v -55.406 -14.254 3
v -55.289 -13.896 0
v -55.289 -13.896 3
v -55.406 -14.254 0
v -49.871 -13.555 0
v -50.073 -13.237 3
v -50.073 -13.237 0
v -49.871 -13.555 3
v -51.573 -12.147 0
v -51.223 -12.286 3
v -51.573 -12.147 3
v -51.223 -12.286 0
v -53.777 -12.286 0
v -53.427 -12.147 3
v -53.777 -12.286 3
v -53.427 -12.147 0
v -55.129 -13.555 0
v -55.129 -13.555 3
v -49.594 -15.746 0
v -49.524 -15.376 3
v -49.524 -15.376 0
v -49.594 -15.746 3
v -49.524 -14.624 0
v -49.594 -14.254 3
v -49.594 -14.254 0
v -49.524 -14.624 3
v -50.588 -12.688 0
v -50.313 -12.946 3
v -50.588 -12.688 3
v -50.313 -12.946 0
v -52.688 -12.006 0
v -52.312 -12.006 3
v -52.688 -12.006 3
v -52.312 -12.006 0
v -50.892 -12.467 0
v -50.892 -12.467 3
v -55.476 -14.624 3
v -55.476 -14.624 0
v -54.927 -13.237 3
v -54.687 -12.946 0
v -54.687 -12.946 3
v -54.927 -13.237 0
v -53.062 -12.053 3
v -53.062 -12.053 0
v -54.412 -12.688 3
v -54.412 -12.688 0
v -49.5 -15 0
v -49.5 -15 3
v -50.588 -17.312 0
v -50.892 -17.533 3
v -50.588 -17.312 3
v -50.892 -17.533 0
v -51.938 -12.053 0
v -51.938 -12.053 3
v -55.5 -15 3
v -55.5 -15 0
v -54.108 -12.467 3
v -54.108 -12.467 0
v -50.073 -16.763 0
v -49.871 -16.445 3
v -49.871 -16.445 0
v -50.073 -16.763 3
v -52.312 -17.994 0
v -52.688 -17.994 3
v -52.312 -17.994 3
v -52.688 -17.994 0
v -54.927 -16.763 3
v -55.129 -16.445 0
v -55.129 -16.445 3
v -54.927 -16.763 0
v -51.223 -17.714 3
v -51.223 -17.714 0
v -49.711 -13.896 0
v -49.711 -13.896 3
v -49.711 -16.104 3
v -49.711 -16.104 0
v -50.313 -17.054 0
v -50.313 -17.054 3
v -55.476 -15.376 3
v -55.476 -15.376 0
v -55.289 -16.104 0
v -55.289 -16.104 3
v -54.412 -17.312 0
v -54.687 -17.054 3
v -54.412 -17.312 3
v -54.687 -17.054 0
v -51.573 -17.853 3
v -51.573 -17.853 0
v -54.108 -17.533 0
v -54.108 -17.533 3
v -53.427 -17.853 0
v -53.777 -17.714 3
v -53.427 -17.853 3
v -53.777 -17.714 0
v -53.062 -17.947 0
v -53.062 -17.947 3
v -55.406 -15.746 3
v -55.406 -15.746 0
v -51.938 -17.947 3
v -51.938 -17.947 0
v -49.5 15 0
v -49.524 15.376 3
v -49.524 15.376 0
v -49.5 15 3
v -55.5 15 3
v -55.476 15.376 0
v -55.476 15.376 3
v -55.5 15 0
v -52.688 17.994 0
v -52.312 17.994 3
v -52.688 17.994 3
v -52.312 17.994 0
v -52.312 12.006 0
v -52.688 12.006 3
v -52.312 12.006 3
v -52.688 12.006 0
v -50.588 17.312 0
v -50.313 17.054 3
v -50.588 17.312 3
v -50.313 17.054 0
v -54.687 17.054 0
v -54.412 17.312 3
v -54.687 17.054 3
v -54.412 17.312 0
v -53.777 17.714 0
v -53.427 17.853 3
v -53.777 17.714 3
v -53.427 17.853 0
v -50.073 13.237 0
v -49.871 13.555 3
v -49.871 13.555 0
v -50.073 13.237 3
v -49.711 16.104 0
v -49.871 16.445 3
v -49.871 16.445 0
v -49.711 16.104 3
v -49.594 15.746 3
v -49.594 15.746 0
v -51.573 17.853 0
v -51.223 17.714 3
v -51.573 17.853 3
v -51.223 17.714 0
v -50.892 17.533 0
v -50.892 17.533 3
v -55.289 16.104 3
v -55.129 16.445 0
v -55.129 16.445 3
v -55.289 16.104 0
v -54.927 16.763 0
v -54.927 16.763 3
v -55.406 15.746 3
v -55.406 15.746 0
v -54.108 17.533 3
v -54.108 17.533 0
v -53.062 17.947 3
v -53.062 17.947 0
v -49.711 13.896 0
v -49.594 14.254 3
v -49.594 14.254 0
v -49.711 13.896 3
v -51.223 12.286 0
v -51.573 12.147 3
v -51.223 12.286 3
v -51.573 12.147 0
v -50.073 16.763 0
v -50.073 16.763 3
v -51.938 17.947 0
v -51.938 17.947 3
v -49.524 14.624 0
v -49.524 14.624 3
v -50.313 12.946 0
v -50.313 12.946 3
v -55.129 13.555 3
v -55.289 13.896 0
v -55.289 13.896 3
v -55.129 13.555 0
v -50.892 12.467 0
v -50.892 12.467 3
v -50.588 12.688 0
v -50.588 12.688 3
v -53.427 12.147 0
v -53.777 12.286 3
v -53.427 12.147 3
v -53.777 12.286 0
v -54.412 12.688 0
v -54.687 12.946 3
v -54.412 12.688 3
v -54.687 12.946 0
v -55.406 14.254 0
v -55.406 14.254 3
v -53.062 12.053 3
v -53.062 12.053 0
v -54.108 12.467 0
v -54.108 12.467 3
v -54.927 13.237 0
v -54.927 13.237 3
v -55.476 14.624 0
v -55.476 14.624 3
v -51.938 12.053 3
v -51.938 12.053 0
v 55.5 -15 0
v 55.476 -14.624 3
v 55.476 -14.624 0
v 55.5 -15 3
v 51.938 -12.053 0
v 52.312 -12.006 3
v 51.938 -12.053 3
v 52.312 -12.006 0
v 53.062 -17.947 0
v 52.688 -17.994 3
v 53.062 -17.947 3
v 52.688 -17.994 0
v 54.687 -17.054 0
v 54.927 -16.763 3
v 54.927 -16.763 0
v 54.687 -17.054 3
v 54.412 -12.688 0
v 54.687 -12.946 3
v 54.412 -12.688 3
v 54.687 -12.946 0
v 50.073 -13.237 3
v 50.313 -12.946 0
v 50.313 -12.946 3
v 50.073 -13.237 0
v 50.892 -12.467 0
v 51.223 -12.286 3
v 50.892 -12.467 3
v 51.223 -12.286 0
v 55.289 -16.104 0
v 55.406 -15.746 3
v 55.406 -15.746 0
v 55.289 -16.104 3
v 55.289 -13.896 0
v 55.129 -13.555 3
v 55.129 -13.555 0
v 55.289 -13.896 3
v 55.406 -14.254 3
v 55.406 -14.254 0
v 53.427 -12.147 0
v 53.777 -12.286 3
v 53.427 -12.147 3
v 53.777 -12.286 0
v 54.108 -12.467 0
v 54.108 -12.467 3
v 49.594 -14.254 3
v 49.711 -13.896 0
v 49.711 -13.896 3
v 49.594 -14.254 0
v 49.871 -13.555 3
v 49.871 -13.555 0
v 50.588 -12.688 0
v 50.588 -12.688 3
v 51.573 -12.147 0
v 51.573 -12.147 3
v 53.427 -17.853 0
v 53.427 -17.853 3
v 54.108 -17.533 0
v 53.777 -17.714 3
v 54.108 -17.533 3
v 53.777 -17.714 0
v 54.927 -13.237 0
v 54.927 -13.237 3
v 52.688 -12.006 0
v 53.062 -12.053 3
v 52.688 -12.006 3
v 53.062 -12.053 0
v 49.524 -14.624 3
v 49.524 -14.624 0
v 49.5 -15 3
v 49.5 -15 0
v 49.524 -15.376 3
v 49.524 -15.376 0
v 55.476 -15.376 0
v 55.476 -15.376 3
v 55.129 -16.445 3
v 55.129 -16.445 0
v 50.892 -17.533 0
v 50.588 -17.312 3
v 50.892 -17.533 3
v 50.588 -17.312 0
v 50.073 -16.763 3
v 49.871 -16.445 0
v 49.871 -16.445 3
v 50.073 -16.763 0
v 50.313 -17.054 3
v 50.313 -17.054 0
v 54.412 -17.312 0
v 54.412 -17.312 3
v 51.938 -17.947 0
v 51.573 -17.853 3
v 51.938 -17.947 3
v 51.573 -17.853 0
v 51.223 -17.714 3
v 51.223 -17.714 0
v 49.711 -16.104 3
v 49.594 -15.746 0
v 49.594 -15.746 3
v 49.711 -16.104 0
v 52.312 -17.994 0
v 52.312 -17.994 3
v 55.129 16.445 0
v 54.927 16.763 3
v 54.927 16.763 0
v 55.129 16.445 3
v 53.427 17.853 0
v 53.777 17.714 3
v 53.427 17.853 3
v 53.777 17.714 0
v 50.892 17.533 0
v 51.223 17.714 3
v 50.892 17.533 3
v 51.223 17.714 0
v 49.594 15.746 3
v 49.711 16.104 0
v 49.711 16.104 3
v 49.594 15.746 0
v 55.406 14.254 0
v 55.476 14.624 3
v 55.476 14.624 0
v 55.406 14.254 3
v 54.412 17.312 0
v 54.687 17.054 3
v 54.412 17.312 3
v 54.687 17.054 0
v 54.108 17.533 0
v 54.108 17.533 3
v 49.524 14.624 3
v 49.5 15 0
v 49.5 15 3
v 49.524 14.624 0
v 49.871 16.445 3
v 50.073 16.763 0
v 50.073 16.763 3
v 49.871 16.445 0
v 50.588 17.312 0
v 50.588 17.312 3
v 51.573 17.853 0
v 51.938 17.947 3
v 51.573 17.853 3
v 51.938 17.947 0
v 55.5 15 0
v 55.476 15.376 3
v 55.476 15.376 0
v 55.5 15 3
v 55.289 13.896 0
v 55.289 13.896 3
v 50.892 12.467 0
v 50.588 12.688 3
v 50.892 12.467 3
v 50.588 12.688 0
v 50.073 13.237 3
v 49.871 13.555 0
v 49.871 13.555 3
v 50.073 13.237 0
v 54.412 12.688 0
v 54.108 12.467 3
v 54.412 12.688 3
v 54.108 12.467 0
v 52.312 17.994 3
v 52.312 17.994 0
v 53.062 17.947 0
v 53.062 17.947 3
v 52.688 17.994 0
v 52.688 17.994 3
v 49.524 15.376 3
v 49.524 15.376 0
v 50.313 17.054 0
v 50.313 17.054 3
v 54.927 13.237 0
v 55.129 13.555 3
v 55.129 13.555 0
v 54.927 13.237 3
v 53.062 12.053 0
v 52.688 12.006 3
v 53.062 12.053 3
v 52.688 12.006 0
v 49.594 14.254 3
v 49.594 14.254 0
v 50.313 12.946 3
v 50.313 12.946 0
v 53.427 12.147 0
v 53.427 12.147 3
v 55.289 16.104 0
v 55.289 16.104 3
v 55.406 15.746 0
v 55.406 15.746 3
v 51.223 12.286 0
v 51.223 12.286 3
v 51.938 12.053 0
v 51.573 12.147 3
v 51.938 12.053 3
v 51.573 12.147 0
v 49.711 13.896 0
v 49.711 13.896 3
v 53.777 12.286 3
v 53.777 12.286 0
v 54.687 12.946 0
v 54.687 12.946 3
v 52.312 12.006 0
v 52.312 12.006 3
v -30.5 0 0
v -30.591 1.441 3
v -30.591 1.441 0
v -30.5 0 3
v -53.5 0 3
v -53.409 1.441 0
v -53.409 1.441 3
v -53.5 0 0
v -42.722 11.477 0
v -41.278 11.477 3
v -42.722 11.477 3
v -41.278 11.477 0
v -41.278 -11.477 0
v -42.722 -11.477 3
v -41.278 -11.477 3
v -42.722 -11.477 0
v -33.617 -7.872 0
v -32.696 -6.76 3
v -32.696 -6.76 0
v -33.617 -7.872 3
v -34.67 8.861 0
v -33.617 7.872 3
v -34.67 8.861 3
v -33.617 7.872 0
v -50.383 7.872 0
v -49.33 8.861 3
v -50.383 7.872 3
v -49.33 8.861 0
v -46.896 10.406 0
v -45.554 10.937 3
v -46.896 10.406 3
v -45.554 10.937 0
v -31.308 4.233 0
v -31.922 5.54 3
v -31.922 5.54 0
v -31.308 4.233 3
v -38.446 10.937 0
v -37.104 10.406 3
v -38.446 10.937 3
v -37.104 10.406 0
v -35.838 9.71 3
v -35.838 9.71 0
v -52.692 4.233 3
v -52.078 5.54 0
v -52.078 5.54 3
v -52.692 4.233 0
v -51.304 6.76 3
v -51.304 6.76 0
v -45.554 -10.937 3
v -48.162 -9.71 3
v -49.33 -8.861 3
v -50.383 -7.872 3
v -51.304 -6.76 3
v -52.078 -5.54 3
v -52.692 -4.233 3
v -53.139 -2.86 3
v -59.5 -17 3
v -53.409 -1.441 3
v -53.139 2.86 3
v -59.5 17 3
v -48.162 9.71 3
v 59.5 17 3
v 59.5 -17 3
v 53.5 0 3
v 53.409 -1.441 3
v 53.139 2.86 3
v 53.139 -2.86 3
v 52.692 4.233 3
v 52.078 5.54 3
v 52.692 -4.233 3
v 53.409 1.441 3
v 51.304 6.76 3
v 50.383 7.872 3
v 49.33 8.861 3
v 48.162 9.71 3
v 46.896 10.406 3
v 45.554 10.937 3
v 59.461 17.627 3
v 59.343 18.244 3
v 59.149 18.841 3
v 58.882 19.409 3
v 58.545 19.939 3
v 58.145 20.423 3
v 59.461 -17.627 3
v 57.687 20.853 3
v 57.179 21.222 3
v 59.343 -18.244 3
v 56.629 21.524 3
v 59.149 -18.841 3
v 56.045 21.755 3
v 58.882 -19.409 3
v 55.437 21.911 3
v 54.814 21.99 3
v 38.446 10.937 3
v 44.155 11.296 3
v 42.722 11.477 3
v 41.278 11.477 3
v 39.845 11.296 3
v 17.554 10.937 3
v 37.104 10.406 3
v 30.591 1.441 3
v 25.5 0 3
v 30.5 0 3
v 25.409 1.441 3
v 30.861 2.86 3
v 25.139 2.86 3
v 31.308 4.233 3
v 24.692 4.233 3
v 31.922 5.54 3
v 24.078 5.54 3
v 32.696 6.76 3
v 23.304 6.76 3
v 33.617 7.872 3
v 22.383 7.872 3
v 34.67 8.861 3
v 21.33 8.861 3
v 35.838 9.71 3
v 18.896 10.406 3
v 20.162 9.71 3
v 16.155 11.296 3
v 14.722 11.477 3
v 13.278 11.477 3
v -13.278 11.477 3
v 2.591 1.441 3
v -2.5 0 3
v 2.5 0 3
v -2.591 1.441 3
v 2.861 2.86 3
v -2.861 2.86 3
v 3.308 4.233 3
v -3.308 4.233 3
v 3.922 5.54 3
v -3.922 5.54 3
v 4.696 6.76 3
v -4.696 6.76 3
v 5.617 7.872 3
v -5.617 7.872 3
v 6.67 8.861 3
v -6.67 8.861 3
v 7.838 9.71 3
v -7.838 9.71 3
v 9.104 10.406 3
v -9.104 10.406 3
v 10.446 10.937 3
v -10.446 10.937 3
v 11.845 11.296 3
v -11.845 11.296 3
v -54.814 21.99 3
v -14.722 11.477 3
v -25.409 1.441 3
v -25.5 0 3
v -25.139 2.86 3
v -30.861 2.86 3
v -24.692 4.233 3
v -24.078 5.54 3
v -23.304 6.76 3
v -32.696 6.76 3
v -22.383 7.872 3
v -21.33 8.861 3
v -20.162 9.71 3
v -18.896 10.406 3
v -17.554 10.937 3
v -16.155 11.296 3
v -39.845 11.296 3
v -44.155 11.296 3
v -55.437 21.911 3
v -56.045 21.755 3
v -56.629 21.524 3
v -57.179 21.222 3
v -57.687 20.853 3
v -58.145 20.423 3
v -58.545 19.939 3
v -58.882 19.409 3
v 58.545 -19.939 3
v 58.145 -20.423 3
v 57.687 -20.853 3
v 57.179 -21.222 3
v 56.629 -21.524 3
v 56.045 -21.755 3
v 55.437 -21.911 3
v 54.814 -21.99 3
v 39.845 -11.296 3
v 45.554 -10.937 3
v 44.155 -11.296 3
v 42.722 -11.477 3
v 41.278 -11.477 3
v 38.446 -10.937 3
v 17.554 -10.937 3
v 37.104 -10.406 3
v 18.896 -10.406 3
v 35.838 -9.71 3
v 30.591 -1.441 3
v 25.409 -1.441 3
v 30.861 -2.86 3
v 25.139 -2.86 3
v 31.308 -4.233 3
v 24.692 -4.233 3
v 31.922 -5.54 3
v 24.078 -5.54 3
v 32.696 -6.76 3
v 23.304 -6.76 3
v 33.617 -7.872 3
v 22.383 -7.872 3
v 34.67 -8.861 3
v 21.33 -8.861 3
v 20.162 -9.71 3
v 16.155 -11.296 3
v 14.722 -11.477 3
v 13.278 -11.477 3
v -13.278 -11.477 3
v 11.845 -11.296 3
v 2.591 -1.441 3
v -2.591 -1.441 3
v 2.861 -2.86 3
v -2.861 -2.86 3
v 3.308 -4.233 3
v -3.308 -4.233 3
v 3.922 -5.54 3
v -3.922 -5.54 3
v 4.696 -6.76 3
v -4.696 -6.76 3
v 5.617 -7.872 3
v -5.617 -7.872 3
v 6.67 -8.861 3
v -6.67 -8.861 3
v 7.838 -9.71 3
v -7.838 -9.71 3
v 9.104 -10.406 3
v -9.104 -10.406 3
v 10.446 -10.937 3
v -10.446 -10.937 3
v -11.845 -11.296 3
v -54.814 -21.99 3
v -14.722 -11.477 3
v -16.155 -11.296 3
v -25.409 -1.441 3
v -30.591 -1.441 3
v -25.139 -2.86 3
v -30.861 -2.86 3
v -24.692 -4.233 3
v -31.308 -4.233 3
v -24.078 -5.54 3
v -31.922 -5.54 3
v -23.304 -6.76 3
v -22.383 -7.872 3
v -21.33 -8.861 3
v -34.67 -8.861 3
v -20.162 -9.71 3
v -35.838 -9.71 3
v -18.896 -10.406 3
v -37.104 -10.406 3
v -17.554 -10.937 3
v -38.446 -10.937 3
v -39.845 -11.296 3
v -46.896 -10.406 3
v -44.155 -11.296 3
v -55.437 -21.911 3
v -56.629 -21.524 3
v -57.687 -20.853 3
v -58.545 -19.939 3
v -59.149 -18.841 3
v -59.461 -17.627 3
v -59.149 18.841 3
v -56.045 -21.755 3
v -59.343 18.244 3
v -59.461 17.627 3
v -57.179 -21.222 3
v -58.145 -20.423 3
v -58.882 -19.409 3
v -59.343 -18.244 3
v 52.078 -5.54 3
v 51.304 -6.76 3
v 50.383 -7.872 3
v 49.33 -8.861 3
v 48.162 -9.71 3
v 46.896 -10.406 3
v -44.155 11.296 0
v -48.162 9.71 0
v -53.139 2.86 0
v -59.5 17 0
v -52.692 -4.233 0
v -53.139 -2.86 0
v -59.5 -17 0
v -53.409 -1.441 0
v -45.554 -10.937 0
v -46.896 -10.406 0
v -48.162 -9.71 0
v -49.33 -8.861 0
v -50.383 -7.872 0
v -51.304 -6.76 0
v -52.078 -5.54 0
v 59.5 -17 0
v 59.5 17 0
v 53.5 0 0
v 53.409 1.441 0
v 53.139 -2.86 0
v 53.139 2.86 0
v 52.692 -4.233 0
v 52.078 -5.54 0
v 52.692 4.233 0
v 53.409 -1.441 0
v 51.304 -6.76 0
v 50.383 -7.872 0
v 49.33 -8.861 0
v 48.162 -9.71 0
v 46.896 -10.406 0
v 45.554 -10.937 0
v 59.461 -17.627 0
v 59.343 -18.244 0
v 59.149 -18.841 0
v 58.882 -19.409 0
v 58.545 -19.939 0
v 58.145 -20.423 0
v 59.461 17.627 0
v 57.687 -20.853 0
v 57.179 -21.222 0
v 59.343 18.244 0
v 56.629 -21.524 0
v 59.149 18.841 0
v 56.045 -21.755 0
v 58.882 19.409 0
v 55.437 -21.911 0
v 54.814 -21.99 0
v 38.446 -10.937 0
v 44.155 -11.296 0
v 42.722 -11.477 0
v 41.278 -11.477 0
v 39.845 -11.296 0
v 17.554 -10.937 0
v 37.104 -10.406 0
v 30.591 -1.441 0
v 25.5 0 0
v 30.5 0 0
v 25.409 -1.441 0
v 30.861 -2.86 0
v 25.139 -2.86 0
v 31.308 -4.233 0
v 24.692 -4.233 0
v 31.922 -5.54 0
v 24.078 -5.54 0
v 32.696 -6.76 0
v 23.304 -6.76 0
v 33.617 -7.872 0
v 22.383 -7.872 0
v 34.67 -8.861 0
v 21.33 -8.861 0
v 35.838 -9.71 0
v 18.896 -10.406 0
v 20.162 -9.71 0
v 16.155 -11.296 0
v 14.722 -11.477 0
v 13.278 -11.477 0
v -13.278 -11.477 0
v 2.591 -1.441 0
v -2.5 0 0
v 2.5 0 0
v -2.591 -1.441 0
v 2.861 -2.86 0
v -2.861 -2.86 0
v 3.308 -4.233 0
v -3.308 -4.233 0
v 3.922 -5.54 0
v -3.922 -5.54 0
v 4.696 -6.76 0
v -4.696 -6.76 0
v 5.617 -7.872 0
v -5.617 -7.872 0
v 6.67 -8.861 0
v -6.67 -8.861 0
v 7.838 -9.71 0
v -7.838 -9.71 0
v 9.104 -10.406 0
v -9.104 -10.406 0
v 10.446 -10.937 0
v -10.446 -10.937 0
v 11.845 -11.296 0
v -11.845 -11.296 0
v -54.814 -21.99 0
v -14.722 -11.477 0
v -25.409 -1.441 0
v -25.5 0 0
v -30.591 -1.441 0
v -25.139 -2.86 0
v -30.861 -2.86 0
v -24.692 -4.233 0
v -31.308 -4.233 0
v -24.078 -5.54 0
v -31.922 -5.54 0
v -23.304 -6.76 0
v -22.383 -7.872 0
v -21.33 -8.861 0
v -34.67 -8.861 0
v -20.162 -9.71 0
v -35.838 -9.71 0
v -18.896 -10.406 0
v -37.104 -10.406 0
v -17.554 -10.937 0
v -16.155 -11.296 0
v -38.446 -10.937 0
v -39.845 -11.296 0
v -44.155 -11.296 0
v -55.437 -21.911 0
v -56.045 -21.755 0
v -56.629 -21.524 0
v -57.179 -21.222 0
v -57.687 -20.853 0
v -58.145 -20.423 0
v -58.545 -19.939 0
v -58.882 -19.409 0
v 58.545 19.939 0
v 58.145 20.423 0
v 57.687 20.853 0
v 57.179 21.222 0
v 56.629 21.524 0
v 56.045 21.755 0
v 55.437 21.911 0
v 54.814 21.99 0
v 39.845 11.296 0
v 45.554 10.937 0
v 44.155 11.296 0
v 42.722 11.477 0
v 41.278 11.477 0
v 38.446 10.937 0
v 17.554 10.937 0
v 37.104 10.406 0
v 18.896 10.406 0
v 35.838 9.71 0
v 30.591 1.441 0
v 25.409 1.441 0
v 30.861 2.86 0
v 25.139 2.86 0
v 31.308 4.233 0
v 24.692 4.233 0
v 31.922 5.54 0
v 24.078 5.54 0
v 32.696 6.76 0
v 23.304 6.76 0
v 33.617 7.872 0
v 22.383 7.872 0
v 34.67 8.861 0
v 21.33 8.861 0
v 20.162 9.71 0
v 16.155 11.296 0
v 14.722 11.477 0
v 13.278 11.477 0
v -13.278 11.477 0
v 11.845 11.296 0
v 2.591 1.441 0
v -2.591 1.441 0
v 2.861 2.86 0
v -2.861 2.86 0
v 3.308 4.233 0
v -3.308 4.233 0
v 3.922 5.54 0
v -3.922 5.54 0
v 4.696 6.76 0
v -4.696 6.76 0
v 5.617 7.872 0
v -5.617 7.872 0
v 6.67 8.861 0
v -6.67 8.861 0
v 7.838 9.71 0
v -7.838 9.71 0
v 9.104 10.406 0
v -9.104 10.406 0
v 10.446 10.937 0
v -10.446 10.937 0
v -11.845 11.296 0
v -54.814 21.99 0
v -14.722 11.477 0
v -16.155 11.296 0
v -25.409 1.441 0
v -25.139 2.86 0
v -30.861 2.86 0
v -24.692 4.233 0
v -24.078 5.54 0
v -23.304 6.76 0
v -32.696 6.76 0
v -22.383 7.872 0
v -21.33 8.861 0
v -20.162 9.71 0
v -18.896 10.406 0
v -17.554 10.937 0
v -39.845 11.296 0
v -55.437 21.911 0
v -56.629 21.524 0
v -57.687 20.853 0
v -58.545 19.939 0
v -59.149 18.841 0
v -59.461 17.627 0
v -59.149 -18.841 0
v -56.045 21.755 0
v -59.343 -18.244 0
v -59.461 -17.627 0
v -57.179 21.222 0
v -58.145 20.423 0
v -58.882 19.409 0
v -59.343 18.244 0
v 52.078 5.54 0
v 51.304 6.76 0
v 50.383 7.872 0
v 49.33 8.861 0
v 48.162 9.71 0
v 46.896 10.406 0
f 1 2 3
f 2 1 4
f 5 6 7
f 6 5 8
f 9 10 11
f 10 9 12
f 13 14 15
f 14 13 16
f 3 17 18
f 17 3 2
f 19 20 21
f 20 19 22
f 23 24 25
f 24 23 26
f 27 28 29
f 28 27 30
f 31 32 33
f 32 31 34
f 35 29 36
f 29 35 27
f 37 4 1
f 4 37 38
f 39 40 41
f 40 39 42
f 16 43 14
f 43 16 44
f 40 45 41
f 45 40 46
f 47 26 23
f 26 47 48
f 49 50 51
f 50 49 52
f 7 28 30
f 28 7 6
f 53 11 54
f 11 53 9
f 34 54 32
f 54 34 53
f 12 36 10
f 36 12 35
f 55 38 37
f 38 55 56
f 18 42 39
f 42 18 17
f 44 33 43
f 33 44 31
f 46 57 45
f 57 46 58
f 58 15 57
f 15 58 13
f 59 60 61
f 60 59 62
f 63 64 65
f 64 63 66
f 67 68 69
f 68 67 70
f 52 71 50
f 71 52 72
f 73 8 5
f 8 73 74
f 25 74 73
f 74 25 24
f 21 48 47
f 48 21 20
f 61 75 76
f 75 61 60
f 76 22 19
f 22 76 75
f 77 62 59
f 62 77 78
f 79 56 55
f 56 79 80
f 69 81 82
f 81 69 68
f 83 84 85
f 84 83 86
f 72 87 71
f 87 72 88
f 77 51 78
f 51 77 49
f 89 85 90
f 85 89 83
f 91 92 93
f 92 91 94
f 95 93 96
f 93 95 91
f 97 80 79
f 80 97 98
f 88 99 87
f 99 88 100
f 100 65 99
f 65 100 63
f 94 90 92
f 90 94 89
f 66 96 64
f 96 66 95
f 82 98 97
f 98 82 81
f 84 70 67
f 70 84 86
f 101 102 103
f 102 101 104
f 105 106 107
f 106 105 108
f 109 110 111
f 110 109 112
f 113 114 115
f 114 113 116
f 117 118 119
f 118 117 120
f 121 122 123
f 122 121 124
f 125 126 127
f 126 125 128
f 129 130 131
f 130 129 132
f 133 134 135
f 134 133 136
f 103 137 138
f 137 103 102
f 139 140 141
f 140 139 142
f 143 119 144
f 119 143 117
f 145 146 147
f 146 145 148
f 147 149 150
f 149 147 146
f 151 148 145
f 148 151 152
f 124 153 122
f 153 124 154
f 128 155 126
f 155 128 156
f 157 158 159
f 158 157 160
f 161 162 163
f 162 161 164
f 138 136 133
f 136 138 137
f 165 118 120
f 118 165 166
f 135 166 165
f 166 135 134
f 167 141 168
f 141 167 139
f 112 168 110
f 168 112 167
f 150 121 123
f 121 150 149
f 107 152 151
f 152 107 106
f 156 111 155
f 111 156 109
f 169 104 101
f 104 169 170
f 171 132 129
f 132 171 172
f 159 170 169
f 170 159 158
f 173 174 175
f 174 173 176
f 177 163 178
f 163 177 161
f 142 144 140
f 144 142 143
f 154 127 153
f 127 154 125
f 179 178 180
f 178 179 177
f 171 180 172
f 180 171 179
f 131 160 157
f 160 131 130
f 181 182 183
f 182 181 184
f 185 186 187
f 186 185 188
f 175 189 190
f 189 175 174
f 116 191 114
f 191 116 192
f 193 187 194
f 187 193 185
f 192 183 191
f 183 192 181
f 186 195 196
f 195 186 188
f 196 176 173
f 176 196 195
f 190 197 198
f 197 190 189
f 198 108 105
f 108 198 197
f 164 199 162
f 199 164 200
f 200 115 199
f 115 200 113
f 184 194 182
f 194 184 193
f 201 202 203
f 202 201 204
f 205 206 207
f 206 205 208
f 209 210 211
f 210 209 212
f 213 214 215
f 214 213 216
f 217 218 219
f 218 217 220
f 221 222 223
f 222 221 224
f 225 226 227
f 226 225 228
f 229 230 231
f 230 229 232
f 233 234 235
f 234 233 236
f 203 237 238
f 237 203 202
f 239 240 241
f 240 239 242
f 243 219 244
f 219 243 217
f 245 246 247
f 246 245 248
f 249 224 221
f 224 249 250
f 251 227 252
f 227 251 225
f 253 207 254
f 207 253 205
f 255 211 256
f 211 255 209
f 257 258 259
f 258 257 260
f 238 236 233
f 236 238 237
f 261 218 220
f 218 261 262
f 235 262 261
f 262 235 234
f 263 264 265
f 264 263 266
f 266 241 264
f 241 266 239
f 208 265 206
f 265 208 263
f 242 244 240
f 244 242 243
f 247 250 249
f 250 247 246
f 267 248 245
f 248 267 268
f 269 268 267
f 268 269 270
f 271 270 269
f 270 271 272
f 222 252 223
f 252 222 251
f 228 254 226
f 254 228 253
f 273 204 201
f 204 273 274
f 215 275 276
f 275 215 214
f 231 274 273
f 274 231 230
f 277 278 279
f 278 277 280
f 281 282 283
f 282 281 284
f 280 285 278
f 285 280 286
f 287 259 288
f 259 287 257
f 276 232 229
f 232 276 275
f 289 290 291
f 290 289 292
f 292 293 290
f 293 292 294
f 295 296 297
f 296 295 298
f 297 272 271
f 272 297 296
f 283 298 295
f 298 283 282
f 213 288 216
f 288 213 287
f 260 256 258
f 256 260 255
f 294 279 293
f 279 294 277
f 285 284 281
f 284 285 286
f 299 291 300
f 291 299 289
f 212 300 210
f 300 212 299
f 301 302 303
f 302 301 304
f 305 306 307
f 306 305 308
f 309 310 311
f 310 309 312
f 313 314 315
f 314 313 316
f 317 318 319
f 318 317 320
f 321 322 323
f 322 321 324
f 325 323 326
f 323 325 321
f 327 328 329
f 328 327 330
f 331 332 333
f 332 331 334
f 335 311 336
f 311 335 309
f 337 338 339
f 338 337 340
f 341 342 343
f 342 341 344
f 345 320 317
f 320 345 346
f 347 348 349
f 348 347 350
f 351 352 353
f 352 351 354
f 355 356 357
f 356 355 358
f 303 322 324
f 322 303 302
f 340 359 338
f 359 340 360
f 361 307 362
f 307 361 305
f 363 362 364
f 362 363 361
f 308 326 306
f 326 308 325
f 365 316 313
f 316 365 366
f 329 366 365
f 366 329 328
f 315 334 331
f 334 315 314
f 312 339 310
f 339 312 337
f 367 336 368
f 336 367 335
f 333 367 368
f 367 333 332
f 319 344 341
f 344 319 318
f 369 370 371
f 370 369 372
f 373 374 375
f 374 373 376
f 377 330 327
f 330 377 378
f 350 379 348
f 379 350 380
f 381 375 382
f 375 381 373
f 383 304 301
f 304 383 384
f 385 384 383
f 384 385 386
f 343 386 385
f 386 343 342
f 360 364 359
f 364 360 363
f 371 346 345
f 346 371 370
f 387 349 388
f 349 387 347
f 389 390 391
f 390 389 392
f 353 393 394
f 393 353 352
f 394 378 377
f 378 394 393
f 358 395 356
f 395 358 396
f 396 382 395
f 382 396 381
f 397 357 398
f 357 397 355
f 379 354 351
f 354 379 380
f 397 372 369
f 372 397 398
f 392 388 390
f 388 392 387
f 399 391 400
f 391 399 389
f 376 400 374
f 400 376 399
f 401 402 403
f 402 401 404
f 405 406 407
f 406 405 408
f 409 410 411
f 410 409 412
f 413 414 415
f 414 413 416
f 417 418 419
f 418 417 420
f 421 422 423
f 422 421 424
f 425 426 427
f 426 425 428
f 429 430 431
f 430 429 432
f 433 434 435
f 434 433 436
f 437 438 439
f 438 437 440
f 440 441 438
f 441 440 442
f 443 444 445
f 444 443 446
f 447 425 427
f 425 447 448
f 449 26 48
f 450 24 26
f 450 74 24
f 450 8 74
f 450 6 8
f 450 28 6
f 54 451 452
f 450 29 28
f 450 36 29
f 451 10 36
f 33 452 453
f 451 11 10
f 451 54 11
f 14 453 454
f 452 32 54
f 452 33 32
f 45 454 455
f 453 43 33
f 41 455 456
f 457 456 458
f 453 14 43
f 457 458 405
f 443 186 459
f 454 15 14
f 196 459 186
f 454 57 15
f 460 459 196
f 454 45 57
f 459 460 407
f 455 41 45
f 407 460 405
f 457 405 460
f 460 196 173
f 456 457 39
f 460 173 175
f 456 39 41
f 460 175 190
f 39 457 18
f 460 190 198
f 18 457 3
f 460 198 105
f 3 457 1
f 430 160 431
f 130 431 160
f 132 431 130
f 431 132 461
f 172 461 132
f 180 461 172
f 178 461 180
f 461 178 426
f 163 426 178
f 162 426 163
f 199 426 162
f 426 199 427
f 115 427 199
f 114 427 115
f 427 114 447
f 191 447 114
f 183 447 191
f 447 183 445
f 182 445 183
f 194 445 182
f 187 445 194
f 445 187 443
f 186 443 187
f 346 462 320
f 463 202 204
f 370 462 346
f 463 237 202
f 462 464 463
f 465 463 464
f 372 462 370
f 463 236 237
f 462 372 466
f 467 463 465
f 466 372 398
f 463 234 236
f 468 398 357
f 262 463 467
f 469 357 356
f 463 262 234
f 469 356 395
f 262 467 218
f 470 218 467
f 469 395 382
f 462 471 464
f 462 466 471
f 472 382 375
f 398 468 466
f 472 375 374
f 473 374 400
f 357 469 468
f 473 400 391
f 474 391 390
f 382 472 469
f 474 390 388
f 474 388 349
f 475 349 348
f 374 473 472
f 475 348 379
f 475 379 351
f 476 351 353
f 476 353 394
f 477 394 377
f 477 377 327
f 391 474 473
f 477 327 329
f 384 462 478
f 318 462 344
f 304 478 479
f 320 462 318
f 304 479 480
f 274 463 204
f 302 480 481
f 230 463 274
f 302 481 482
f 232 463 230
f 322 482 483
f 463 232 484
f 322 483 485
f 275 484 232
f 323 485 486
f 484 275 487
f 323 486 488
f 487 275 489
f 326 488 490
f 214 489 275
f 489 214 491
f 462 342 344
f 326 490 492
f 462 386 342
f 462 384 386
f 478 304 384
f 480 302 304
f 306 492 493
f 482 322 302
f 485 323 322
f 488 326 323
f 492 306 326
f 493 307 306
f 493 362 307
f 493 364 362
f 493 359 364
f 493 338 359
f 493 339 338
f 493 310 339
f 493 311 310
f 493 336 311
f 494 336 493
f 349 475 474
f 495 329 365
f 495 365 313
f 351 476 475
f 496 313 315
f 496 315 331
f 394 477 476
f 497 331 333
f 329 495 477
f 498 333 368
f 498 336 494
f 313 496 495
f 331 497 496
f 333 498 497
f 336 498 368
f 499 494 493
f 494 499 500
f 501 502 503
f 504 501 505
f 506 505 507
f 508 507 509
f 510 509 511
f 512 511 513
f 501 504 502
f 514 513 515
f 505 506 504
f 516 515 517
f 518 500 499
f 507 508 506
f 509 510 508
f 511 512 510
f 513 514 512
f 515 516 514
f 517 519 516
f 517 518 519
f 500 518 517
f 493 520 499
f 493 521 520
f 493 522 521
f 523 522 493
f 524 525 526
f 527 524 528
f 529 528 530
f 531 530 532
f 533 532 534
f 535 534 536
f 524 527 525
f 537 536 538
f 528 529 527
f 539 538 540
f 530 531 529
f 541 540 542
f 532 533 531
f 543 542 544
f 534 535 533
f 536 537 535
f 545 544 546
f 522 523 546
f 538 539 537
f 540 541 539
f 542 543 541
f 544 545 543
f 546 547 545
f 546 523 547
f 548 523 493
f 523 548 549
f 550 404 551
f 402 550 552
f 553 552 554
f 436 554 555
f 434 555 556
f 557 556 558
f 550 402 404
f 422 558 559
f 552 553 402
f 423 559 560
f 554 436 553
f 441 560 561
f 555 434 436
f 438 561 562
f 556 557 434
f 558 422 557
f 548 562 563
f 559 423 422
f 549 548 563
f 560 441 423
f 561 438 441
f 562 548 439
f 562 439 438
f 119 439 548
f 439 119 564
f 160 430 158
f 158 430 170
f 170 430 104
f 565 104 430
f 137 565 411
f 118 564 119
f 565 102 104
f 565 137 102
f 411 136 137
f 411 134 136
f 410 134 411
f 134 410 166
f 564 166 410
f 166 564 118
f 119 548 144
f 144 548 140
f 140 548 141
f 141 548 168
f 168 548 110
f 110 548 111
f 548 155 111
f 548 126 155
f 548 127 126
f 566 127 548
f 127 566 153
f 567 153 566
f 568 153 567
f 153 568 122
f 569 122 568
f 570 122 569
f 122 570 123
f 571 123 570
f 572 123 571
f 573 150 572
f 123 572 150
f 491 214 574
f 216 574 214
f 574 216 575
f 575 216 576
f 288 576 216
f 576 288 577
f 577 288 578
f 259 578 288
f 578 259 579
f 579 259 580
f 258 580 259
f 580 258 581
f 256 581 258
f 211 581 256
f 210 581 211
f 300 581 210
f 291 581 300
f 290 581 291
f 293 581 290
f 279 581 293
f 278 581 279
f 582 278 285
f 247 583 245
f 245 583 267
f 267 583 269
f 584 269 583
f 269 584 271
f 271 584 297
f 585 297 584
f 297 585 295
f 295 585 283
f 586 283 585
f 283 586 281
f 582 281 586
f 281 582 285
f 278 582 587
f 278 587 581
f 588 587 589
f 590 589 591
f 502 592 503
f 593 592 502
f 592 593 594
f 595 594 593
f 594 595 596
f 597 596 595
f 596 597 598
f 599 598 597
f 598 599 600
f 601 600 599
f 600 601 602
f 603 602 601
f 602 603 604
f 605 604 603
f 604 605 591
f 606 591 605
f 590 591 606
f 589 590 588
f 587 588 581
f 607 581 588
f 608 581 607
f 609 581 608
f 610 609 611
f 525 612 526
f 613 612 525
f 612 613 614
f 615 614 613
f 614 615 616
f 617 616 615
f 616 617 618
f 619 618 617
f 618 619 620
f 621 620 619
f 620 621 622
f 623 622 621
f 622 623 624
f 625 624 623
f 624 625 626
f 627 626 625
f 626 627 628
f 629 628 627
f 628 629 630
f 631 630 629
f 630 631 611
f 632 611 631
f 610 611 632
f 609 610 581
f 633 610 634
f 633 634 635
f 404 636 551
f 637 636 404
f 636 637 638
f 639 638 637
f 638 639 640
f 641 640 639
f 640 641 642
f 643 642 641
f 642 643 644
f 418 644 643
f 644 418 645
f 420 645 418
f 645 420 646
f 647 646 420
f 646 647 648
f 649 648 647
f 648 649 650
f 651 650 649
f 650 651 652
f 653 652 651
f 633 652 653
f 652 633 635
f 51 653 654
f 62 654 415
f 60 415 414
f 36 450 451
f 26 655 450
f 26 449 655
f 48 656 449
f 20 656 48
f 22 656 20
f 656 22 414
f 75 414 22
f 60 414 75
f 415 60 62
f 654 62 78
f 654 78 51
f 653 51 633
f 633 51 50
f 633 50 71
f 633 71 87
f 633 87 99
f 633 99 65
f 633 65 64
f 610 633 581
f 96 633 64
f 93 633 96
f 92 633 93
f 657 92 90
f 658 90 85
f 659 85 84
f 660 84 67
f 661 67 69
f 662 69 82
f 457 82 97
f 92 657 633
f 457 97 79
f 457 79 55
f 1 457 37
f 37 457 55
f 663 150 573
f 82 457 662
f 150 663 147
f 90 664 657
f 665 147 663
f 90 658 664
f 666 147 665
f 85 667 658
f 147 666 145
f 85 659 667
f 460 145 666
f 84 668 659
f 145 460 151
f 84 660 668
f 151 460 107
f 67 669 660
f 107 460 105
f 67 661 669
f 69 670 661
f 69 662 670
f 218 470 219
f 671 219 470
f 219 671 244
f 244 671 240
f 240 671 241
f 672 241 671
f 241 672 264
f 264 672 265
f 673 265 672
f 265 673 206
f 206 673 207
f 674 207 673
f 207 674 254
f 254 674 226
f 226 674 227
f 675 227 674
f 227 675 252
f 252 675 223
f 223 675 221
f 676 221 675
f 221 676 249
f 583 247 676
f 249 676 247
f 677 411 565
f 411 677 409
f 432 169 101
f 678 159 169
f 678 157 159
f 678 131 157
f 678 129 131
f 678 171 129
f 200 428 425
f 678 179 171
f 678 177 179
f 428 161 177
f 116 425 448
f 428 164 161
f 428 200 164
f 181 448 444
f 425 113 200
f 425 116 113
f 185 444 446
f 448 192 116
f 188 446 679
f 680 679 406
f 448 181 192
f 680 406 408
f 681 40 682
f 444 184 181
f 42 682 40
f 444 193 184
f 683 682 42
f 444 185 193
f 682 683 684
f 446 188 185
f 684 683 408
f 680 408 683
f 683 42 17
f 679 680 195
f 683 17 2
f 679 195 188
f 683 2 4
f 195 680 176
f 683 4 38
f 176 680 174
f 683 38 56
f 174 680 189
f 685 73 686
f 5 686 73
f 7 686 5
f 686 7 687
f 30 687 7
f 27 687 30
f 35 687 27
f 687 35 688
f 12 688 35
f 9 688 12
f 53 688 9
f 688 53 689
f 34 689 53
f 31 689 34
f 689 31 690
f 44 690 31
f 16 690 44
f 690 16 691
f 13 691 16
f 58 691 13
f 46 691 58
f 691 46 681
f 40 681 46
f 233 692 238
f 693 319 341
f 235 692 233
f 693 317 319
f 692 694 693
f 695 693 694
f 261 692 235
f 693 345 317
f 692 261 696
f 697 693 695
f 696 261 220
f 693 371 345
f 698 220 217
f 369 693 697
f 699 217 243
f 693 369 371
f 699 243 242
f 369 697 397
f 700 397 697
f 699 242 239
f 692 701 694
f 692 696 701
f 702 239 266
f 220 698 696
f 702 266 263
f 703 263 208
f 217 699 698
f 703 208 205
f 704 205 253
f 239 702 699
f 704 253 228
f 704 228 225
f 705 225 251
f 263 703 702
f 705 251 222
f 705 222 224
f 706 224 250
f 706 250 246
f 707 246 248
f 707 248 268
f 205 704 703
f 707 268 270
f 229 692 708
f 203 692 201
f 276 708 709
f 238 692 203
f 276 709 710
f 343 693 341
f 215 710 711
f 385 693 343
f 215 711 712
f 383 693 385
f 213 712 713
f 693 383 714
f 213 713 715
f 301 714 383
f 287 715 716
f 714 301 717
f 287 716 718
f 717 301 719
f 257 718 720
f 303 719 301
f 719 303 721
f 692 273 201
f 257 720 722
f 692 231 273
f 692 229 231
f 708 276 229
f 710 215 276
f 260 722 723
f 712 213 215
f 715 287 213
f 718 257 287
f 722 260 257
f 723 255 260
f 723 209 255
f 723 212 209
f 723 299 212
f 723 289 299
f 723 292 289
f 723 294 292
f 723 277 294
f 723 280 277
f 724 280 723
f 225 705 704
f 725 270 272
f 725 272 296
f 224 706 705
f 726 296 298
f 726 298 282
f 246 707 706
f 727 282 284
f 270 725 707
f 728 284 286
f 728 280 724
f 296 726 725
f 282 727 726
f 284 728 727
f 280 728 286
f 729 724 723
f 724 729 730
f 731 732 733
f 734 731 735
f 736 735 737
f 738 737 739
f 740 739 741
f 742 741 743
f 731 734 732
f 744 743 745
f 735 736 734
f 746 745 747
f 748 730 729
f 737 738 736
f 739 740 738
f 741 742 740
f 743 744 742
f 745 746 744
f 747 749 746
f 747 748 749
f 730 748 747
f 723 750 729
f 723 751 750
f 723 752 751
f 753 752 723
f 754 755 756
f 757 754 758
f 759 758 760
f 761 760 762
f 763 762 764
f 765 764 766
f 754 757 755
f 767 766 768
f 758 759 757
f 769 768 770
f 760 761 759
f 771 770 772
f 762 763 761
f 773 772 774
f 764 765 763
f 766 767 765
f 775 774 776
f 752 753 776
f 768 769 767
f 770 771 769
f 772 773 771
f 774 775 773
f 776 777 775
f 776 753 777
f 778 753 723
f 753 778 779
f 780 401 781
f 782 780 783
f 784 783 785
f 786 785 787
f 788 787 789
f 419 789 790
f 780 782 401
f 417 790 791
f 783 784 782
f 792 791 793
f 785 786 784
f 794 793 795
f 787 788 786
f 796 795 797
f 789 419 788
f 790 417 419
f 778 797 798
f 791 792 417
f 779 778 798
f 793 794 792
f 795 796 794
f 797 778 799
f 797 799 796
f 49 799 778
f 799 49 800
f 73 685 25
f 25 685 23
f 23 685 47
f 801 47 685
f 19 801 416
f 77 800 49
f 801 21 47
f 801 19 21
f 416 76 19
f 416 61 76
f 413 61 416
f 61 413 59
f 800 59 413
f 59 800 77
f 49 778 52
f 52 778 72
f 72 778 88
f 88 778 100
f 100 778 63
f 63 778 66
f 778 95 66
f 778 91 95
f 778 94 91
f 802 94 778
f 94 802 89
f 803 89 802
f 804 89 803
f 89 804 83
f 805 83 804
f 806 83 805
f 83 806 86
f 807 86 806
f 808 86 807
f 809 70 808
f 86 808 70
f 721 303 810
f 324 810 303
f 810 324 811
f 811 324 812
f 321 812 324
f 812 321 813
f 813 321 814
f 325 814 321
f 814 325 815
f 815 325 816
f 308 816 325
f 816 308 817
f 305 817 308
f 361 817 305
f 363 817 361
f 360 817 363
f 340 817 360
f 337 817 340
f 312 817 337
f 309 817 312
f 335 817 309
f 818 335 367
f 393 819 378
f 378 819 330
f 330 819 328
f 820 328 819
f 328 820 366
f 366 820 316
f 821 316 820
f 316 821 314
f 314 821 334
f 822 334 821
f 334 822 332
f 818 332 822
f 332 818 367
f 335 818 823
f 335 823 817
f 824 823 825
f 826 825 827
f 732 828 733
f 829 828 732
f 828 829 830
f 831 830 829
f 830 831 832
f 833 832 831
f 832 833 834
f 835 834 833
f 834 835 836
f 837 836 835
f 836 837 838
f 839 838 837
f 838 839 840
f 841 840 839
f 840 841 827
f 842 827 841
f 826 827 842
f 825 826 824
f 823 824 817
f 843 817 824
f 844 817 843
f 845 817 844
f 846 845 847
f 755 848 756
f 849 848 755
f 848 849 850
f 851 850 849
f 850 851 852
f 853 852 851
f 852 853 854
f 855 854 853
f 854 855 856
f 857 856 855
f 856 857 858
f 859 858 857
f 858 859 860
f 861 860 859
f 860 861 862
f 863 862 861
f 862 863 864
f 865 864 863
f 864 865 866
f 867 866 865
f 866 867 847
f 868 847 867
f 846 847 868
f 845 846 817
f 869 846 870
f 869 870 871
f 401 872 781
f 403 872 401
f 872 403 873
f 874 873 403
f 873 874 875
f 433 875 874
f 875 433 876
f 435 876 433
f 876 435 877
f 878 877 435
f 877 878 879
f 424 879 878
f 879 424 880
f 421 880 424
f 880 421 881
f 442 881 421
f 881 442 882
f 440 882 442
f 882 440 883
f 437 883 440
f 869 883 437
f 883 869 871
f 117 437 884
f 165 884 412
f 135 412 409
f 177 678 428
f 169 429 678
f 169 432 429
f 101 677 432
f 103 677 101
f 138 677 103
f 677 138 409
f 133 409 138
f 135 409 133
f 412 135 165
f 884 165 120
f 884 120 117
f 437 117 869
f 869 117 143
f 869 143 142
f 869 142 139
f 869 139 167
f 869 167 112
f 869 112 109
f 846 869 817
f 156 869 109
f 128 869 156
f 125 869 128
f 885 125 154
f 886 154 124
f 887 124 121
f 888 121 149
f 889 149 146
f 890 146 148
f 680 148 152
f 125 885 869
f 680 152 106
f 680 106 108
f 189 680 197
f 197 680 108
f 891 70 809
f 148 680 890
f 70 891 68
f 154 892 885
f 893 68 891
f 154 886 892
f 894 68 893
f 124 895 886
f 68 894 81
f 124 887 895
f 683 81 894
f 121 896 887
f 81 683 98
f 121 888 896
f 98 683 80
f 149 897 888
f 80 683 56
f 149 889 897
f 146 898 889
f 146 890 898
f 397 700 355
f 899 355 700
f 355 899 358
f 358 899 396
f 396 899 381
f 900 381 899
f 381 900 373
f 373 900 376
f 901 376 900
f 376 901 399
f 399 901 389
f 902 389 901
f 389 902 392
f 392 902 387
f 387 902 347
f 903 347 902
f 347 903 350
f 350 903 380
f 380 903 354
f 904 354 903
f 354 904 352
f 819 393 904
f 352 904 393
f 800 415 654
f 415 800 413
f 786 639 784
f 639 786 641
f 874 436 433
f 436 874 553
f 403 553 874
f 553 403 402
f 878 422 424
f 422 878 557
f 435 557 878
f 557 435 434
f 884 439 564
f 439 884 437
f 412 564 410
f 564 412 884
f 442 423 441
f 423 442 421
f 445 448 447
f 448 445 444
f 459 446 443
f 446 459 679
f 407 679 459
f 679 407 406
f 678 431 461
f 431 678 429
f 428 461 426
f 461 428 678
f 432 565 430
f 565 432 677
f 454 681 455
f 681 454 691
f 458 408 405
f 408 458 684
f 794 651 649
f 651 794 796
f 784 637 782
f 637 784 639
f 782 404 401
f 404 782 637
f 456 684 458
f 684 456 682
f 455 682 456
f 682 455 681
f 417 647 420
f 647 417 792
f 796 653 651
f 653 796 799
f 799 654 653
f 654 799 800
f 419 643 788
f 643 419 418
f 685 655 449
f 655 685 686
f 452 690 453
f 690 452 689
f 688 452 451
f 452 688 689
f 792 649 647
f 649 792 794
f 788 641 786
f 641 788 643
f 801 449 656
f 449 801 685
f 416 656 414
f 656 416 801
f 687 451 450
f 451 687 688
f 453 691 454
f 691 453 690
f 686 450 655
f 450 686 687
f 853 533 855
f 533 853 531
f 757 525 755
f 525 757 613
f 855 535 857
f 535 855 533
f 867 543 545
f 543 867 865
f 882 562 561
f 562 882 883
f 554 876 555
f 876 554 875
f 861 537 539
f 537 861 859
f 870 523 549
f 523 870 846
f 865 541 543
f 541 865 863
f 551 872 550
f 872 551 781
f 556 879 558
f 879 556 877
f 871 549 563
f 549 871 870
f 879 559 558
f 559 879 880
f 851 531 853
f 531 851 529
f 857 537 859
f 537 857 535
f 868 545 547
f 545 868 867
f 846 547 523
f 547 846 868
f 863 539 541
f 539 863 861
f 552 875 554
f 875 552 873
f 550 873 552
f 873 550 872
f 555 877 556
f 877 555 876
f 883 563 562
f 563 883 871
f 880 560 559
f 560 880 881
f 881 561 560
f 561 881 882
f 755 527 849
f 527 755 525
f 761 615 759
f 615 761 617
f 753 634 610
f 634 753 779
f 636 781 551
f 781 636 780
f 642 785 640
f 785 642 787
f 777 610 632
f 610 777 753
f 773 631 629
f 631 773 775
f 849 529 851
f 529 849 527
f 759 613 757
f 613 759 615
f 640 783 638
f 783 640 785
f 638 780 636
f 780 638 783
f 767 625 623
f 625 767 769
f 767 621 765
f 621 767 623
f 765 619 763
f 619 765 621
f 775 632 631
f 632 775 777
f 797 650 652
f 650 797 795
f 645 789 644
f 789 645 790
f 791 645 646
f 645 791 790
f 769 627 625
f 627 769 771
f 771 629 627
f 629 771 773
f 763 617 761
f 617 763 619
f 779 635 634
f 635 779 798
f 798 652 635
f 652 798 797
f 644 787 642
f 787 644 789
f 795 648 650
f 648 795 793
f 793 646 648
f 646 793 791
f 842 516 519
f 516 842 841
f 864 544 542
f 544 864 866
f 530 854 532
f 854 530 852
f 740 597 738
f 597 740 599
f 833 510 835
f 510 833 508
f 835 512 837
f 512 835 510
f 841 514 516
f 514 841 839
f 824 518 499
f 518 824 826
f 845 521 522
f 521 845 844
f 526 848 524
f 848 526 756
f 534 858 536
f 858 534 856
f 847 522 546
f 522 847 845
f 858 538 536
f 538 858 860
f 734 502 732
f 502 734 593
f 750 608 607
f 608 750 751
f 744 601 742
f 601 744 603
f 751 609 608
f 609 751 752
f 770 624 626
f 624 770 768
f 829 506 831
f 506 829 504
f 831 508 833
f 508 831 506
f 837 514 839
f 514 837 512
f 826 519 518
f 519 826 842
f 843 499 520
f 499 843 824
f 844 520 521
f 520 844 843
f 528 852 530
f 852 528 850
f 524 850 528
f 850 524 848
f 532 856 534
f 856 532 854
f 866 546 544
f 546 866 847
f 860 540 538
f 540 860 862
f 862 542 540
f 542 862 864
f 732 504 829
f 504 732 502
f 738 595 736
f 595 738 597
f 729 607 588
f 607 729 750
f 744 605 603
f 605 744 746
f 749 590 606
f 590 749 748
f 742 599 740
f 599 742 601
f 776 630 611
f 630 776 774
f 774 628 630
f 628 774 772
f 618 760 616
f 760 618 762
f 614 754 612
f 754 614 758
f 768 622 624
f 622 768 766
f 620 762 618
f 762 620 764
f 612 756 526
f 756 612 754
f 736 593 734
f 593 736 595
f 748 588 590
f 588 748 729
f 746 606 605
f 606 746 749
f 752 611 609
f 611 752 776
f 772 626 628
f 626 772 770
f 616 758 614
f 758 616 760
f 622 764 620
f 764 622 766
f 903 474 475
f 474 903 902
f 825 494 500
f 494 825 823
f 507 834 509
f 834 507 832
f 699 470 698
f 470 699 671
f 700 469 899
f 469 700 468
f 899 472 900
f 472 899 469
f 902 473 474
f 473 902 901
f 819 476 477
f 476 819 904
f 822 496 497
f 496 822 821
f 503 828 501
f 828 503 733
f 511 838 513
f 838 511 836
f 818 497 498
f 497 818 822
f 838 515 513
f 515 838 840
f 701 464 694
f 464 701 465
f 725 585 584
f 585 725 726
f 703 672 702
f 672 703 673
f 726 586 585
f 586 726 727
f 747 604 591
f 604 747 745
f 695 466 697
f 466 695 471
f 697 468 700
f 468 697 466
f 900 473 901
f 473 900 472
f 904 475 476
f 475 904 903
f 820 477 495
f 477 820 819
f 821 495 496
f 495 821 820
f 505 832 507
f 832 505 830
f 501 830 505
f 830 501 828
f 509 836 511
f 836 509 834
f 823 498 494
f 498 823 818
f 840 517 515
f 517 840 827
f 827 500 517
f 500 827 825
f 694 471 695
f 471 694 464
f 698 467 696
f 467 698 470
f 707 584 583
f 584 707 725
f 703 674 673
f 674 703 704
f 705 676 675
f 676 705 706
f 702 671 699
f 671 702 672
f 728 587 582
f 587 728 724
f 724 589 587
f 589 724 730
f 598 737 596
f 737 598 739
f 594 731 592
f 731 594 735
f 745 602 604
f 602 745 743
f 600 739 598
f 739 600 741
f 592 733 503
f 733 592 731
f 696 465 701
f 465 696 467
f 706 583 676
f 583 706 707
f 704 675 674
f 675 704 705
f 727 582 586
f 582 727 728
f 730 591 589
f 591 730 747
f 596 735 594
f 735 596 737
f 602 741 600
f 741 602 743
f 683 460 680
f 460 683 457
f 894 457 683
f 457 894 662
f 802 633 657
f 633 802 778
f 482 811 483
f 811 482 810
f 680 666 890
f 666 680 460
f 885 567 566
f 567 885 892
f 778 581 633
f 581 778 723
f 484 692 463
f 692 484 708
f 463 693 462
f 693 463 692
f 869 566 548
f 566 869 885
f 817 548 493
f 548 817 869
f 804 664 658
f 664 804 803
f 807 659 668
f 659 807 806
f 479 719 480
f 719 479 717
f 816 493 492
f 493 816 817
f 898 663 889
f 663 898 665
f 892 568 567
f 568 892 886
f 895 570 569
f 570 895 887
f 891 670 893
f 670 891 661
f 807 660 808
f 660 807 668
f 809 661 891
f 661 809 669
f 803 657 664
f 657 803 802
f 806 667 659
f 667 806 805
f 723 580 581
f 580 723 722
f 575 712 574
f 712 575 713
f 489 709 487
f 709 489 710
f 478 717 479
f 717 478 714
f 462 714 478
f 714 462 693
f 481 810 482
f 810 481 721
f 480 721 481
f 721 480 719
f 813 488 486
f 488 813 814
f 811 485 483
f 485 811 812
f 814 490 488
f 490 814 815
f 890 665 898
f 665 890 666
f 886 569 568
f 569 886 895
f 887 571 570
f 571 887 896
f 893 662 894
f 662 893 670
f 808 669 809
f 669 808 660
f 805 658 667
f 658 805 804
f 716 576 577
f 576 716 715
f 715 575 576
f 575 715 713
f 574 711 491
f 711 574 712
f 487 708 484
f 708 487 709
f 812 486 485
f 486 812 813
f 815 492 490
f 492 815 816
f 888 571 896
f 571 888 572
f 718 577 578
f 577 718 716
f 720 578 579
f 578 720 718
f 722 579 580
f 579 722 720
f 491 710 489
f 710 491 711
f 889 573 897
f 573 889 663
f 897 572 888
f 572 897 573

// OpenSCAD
$fn = 50;


difference() {
	union() {
		hull() {
			translate(v = [-54.5000000000, 17.0000000000, 0]) {
				cylinder(h = 3, r = 5);
			}
			translate(v = [54.5000000000, 17.0000000000, 0]) {
				cylinder(h = 3, r = 5);
			}
			translate(v = [-54.5000000000, -17.0000000000, 0]) {
				cylinder(h = 3, r = 5);
			}
			translate(v = [54.5000000000, -17.0000000000, 0]) {
				cylinder(h = 3, r = 5);
			}
		}
	}
	union() {
		#translate(v = [-52.5000000000, -15.0000000000, -100.0000000000]) {
			cylinder(h = 200, r = 3.0000000000);
		}
		#translate(v = [-52.5000000000, 15.0000000000, -100.0000000000]) {
			cylinder(h = 200, r = 3.0000000000);
		}
		#translate(v = [52.5000000000, -15.0000000000, -100.0000000000]) {
			cylinder(h = 200, r = 3.0000000000);
		}
		#translate(v = [52.5000000000, 15.0000000000, -100.0000000000]) {
			cylinder(h = 200, r = 3.0000000000);
		}
		#translate(v = [-42.0000000000, 0, 0]) {
			cylinder(h = 3, r = 11.5000000000);
		}
		#translate(v = [-14.0000000000, 0, 0]) {
			cylinder(h = 3, r = 11.5000000000);
		}
		#translate(v = [14.0000000000, 0, 0]) {
			cylinder(h = 3, r = 11.5000000000);
		}
		#translate(v = [42.0000000000, 0, 0]) {
			cylinder(h = 3, r = 11.5000000000);
		}
	}
}
